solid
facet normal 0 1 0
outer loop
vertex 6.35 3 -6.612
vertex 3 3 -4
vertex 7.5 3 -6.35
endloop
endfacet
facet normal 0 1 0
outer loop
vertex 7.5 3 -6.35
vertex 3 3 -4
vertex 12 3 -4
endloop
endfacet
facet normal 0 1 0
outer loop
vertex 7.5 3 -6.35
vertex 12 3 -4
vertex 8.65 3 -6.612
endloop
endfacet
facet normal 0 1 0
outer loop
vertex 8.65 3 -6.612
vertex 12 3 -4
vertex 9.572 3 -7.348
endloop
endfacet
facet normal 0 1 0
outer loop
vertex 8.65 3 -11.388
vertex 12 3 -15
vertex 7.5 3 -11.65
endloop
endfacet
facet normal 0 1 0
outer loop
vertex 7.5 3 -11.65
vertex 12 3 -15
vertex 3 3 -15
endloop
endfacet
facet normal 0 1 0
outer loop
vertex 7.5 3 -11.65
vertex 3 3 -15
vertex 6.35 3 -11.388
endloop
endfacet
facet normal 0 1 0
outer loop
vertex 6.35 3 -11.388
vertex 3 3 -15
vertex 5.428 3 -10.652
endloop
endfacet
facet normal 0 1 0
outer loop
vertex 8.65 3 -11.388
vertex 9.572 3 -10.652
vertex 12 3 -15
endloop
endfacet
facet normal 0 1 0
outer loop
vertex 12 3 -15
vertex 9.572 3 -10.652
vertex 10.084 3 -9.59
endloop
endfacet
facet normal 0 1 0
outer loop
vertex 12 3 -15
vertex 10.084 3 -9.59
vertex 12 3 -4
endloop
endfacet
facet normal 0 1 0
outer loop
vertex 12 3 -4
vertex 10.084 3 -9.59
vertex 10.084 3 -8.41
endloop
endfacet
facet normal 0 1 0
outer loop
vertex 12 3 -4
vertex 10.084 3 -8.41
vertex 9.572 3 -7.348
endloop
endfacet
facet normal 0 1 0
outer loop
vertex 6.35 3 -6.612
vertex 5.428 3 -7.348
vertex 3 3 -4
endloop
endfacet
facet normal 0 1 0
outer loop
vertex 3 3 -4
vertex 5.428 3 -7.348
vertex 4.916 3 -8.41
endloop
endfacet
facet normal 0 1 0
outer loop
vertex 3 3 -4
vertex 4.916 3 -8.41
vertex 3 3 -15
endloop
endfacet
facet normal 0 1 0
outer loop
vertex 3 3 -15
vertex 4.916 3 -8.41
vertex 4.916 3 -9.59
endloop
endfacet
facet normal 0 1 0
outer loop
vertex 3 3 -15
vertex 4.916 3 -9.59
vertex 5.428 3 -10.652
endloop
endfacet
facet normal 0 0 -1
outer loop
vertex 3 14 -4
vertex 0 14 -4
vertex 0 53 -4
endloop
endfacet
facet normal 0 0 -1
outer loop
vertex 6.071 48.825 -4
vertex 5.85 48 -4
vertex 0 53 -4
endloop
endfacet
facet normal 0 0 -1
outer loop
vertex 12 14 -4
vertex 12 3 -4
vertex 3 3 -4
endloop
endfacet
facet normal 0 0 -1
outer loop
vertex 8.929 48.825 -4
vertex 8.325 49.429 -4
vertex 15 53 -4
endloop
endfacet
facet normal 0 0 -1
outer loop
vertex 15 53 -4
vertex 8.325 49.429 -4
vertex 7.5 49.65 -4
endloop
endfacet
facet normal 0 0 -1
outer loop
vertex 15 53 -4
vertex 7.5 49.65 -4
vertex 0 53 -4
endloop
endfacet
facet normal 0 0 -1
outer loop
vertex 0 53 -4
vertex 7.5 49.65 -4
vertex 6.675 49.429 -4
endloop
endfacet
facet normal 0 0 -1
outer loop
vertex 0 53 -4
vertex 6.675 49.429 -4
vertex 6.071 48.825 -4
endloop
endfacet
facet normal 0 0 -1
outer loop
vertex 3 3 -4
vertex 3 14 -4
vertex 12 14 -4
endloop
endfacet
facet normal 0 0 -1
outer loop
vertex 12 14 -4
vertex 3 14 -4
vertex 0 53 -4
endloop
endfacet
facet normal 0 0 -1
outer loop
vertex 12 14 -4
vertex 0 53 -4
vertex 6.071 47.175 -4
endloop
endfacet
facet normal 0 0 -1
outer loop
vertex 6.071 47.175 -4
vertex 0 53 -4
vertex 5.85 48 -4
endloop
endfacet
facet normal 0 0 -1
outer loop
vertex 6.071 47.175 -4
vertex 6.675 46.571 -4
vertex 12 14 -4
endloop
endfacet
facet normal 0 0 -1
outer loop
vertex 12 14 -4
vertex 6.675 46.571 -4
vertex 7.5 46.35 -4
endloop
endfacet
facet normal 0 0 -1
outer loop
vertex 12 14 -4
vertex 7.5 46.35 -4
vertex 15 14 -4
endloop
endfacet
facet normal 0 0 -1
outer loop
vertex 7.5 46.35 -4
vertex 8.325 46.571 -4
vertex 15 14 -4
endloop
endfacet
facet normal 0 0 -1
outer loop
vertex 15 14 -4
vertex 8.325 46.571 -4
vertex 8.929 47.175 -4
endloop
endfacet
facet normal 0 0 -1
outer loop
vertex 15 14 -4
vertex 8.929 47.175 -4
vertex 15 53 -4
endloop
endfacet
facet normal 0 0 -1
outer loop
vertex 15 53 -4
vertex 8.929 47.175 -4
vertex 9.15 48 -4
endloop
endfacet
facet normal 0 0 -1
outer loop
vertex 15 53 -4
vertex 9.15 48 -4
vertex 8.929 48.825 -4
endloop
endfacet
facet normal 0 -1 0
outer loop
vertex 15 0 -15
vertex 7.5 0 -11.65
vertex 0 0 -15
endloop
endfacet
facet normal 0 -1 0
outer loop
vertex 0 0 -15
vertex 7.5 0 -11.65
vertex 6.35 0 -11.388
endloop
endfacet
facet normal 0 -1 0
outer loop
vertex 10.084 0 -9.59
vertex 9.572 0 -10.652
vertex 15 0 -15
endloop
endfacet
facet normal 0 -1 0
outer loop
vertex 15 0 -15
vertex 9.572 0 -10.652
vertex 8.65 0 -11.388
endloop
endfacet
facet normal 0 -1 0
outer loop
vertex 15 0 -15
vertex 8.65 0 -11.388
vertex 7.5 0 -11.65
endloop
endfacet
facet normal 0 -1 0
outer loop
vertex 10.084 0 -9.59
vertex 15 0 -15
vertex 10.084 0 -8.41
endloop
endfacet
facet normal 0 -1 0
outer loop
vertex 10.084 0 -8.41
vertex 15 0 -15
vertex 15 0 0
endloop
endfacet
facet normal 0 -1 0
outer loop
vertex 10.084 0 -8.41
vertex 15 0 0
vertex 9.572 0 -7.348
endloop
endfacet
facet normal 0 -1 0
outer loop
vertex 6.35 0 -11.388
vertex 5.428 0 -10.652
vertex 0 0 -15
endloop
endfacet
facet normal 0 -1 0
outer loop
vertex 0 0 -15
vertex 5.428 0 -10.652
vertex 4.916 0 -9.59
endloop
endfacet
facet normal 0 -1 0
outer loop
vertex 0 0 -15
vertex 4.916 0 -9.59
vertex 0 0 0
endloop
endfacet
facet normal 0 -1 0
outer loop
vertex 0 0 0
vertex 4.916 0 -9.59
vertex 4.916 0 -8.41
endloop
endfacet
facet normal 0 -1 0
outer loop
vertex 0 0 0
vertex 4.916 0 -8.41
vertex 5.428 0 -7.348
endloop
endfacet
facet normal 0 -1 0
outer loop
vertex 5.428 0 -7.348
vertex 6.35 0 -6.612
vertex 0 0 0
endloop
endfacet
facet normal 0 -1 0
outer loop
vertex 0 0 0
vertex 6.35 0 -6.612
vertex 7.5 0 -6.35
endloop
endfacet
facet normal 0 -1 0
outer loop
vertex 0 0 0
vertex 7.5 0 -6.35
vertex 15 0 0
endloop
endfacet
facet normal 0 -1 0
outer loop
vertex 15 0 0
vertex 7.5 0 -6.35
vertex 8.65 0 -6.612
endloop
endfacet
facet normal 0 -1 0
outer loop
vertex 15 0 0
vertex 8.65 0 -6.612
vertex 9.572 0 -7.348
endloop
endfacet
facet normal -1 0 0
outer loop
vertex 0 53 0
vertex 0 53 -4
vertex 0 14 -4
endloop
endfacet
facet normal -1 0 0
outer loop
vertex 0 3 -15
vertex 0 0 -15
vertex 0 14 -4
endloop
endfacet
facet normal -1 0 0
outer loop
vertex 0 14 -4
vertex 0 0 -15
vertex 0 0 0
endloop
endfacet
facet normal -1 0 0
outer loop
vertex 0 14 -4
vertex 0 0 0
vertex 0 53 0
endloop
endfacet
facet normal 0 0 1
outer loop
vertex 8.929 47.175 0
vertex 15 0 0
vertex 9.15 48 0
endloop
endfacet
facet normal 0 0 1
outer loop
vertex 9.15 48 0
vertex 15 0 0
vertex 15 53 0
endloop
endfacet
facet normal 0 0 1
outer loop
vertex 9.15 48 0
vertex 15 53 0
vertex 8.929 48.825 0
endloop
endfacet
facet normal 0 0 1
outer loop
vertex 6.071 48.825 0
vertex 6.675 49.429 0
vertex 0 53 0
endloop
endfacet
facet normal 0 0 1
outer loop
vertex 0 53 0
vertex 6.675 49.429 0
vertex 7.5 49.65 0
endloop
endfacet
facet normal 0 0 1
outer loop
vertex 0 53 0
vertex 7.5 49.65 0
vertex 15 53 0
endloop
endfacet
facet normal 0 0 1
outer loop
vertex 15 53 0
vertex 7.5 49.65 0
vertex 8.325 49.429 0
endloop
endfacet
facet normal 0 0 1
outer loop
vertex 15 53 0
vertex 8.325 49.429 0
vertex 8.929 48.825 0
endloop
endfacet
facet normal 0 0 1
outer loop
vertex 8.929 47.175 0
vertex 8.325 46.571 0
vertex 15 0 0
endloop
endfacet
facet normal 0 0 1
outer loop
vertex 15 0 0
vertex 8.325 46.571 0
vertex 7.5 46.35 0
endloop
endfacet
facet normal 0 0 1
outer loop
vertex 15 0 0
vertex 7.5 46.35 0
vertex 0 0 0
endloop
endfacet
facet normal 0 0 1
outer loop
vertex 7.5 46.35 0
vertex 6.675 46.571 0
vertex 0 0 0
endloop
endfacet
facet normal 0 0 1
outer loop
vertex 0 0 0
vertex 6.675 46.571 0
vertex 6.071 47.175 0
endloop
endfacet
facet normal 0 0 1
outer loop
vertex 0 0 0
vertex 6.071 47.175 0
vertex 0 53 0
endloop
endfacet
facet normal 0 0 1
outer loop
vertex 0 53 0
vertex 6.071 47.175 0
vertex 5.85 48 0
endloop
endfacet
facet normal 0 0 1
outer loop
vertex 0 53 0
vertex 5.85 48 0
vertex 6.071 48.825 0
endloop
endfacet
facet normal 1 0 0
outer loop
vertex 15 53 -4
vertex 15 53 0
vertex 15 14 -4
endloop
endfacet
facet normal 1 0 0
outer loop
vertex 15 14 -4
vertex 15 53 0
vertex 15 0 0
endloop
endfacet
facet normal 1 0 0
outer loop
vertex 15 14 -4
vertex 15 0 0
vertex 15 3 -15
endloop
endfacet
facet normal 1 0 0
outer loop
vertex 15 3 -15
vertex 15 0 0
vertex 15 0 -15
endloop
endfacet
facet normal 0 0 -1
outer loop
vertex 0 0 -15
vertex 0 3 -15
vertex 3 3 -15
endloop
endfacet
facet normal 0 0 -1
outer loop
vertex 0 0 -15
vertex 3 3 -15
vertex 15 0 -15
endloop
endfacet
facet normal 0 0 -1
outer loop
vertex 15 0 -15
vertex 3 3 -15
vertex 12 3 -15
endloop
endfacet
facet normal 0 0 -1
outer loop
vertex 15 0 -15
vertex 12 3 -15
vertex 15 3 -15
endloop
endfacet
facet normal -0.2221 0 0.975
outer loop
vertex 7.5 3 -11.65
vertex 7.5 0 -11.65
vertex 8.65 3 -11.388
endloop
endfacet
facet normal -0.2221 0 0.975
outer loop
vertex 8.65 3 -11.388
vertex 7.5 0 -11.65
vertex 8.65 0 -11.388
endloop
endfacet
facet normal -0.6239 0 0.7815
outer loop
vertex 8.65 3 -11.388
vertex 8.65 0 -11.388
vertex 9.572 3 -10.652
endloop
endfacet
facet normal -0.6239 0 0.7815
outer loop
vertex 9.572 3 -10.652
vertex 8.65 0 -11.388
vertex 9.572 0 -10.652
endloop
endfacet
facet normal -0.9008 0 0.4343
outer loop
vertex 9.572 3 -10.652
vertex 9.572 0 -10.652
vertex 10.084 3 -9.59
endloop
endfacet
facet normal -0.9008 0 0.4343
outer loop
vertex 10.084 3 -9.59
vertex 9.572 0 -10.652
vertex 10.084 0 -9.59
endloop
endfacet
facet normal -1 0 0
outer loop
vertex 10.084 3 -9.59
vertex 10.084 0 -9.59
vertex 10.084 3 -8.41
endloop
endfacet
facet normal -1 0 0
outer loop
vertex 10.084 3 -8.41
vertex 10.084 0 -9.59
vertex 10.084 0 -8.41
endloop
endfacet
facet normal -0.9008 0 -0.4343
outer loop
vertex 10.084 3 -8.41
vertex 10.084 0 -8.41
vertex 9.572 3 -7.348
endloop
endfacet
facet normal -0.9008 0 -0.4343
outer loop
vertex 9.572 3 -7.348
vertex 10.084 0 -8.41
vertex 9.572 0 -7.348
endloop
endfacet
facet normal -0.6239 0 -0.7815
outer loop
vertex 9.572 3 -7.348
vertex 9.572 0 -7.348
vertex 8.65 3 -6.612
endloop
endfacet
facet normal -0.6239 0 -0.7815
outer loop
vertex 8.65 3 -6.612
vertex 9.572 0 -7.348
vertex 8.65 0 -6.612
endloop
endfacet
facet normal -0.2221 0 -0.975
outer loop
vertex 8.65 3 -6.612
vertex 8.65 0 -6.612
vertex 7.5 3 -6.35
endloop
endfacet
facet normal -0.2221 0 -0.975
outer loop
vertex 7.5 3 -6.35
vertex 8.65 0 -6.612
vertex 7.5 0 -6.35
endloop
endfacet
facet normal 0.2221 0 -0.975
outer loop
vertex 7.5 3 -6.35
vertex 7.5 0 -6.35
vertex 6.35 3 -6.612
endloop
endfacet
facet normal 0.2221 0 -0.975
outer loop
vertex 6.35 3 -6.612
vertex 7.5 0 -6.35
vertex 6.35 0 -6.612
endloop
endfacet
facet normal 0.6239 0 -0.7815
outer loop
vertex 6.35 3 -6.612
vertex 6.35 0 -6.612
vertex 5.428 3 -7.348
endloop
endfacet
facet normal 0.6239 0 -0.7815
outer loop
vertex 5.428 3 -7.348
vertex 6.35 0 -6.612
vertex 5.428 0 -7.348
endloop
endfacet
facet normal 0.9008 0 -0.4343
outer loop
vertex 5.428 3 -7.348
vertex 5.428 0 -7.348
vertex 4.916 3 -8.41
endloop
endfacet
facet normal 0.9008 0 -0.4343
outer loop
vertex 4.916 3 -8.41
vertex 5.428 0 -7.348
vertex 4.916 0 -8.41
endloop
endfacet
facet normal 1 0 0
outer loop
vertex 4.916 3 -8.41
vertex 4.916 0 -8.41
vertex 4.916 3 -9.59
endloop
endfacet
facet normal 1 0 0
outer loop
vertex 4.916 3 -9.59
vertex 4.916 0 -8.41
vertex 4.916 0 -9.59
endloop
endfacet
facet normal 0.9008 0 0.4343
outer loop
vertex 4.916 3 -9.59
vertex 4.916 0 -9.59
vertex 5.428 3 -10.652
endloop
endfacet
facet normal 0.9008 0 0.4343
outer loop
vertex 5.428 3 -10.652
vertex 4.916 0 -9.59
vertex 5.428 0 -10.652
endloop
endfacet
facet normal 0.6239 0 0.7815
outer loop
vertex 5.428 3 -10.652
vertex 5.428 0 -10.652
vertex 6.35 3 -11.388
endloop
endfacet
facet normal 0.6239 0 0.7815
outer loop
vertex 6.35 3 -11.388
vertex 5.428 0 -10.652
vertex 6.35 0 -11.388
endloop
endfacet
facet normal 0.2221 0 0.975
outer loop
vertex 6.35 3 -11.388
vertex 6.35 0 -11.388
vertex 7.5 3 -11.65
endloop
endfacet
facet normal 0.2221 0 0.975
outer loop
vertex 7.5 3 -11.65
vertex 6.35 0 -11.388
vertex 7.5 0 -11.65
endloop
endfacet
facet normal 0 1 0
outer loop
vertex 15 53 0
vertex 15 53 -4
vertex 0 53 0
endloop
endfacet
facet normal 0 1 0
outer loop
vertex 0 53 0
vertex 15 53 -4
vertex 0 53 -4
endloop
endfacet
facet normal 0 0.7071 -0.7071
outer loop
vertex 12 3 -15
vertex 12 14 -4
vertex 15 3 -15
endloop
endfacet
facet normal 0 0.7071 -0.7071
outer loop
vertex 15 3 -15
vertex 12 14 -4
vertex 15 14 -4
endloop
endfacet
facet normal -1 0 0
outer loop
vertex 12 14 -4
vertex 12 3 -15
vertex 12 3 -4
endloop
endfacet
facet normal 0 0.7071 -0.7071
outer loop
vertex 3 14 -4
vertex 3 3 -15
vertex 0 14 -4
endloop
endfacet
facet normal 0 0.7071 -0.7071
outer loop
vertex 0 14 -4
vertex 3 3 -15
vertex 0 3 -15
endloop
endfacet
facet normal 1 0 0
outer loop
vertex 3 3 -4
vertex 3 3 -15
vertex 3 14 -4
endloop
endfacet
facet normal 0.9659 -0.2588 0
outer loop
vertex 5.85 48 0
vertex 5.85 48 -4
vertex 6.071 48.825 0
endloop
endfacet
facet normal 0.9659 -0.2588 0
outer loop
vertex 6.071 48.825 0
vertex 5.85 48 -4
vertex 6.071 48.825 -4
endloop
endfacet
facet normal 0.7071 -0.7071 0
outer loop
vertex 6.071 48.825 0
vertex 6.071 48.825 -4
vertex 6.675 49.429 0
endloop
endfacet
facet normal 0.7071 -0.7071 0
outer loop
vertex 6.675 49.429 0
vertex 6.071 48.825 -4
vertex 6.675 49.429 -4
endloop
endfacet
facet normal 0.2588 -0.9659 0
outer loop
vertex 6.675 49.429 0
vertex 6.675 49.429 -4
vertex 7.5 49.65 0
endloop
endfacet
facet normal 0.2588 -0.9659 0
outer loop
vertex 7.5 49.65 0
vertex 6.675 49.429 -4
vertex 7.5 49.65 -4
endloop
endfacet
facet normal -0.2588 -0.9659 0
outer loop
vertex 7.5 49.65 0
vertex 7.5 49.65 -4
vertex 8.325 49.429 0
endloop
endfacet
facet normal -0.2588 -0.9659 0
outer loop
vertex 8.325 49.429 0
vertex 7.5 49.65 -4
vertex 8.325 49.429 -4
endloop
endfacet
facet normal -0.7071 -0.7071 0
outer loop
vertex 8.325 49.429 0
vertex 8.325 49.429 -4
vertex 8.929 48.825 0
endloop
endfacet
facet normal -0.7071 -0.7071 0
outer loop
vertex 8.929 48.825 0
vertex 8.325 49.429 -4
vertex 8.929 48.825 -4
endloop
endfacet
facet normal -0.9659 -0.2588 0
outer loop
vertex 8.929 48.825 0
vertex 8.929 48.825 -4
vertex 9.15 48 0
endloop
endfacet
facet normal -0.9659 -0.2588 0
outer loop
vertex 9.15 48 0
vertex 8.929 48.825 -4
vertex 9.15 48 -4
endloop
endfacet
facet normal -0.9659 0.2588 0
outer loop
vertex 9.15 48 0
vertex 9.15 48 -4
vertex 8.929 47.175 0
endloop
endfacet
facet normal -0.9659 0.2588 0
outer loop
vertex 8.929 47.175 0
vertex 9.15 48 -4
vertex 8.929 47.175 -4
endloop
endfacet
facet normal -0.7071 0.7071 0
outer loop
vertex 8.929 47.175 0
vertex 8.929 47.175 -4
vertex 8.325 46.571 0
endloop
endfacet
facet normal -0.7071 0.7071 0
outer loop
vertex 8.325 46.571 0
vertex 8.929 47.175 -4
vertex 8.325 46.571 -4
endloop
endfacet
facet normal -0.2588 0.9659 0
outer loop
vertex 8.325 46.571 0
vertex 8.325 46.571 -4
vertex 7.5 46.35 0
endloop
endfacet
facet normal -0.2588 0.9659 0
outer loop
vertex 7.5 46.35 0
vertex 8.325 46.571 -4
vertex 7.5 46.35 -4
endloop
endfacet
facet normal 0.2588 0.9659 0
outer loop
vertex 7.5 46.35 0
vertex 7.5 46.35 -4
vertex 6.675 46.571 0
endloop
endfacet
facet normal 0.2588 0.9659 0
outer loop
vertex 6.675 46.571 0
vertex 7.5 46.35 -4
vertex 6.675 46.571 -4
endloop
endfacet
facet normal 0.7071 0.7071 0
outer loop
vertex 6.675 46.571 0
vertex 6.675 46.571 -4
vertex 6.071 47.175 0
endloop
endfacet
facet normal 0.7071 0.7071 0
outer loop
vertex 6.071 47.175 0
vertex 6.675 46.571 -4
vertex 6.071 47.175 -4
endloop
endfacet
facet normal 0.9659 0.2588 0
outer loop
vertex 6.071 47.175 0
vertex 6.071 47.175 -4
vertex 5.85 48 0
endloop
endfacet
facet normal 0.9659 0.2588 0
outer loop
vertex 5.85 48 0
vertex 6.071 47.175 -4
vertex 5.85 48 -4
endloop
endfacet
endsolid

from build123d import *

# Parameters (mm, degrees)
SKETCH1_W           = 15
SKETCH1_H           = 15
SKETCH1_R           = 2.65
BOSS_EXTRUDE1_DEPTH = 3
SKETCH2_W           = 15
SKETCH2_H           = 4
BOSS_EXTRUDE2_DEPTH = 50
BOSS_EXTRUDE3_DEPTH = 3
SKETCH4_R           = 1.65
CUT_EXTRUDE1_DEPTH  = 13


with BuildPart() as part:
    # Sketch1 → Boss-Extrude1 (new body)
    with BuildSketch(Plane(origin=(0, 0, 0), x_dir=(1, 0, 0), z_dir=(0, 1, 0))):
        with Locations((7.5, 7.5)):
            Rectangle(SKETCH1_W, SKETCH1_H)
        with Locations(Location((7.5, 9, 0), (0, 0, 270))):
            Circle(SKETCH1_R, mode=Mode.SUBTRACT)
    extrude(amount=BOSS_EXTRUDE1_DEPTH)

    # Sketch2 → Boss-Extrude2 (add)
    with BuildSketch(Plane(origin=(0, 3, 0), x_dir=(1, 0, 0), z_dir=(0, 1, 0))):
        with Locations((7.5, 2)):
            Rectangle(SKETCH2_W, SKETCH2_H)
    extrude(amount=BOSS_EXTRUDE2_DEPTH)

    # Sketch3 → Boss-Extrude3 (add)
    with BuildSketch(Plane(origin=(15, 0, 0), x_dir=(0, 0, -1), z_dir=(1, 0, 0))):
        Polygon((4, 14), (15, 3), (4, 3), align=None)
    boss_extrude3 = extrude(amount=-BOSS_EXTRUDE3_DEPTH)

    # Mirror1: Boss-Extrude3 across plane
    add(boss_extrude3.mirror(Plane.ZY.offset(-7.5)))

    # Sketch4 → Cut-Extrude1 (cut)
    with BuildSketch(Plane(origin=(0, 0, -4), x_dir=(-1, 0, 0), z_dir=(0, 0, -1))):
        with Locations((-7.5, 48)):
            Circle(SKETCH4_R)
    extrude(amount=-CUT_EXTRUDE1_DEPTH, mode=Mode.SUBTRACT)


solid = part.part
